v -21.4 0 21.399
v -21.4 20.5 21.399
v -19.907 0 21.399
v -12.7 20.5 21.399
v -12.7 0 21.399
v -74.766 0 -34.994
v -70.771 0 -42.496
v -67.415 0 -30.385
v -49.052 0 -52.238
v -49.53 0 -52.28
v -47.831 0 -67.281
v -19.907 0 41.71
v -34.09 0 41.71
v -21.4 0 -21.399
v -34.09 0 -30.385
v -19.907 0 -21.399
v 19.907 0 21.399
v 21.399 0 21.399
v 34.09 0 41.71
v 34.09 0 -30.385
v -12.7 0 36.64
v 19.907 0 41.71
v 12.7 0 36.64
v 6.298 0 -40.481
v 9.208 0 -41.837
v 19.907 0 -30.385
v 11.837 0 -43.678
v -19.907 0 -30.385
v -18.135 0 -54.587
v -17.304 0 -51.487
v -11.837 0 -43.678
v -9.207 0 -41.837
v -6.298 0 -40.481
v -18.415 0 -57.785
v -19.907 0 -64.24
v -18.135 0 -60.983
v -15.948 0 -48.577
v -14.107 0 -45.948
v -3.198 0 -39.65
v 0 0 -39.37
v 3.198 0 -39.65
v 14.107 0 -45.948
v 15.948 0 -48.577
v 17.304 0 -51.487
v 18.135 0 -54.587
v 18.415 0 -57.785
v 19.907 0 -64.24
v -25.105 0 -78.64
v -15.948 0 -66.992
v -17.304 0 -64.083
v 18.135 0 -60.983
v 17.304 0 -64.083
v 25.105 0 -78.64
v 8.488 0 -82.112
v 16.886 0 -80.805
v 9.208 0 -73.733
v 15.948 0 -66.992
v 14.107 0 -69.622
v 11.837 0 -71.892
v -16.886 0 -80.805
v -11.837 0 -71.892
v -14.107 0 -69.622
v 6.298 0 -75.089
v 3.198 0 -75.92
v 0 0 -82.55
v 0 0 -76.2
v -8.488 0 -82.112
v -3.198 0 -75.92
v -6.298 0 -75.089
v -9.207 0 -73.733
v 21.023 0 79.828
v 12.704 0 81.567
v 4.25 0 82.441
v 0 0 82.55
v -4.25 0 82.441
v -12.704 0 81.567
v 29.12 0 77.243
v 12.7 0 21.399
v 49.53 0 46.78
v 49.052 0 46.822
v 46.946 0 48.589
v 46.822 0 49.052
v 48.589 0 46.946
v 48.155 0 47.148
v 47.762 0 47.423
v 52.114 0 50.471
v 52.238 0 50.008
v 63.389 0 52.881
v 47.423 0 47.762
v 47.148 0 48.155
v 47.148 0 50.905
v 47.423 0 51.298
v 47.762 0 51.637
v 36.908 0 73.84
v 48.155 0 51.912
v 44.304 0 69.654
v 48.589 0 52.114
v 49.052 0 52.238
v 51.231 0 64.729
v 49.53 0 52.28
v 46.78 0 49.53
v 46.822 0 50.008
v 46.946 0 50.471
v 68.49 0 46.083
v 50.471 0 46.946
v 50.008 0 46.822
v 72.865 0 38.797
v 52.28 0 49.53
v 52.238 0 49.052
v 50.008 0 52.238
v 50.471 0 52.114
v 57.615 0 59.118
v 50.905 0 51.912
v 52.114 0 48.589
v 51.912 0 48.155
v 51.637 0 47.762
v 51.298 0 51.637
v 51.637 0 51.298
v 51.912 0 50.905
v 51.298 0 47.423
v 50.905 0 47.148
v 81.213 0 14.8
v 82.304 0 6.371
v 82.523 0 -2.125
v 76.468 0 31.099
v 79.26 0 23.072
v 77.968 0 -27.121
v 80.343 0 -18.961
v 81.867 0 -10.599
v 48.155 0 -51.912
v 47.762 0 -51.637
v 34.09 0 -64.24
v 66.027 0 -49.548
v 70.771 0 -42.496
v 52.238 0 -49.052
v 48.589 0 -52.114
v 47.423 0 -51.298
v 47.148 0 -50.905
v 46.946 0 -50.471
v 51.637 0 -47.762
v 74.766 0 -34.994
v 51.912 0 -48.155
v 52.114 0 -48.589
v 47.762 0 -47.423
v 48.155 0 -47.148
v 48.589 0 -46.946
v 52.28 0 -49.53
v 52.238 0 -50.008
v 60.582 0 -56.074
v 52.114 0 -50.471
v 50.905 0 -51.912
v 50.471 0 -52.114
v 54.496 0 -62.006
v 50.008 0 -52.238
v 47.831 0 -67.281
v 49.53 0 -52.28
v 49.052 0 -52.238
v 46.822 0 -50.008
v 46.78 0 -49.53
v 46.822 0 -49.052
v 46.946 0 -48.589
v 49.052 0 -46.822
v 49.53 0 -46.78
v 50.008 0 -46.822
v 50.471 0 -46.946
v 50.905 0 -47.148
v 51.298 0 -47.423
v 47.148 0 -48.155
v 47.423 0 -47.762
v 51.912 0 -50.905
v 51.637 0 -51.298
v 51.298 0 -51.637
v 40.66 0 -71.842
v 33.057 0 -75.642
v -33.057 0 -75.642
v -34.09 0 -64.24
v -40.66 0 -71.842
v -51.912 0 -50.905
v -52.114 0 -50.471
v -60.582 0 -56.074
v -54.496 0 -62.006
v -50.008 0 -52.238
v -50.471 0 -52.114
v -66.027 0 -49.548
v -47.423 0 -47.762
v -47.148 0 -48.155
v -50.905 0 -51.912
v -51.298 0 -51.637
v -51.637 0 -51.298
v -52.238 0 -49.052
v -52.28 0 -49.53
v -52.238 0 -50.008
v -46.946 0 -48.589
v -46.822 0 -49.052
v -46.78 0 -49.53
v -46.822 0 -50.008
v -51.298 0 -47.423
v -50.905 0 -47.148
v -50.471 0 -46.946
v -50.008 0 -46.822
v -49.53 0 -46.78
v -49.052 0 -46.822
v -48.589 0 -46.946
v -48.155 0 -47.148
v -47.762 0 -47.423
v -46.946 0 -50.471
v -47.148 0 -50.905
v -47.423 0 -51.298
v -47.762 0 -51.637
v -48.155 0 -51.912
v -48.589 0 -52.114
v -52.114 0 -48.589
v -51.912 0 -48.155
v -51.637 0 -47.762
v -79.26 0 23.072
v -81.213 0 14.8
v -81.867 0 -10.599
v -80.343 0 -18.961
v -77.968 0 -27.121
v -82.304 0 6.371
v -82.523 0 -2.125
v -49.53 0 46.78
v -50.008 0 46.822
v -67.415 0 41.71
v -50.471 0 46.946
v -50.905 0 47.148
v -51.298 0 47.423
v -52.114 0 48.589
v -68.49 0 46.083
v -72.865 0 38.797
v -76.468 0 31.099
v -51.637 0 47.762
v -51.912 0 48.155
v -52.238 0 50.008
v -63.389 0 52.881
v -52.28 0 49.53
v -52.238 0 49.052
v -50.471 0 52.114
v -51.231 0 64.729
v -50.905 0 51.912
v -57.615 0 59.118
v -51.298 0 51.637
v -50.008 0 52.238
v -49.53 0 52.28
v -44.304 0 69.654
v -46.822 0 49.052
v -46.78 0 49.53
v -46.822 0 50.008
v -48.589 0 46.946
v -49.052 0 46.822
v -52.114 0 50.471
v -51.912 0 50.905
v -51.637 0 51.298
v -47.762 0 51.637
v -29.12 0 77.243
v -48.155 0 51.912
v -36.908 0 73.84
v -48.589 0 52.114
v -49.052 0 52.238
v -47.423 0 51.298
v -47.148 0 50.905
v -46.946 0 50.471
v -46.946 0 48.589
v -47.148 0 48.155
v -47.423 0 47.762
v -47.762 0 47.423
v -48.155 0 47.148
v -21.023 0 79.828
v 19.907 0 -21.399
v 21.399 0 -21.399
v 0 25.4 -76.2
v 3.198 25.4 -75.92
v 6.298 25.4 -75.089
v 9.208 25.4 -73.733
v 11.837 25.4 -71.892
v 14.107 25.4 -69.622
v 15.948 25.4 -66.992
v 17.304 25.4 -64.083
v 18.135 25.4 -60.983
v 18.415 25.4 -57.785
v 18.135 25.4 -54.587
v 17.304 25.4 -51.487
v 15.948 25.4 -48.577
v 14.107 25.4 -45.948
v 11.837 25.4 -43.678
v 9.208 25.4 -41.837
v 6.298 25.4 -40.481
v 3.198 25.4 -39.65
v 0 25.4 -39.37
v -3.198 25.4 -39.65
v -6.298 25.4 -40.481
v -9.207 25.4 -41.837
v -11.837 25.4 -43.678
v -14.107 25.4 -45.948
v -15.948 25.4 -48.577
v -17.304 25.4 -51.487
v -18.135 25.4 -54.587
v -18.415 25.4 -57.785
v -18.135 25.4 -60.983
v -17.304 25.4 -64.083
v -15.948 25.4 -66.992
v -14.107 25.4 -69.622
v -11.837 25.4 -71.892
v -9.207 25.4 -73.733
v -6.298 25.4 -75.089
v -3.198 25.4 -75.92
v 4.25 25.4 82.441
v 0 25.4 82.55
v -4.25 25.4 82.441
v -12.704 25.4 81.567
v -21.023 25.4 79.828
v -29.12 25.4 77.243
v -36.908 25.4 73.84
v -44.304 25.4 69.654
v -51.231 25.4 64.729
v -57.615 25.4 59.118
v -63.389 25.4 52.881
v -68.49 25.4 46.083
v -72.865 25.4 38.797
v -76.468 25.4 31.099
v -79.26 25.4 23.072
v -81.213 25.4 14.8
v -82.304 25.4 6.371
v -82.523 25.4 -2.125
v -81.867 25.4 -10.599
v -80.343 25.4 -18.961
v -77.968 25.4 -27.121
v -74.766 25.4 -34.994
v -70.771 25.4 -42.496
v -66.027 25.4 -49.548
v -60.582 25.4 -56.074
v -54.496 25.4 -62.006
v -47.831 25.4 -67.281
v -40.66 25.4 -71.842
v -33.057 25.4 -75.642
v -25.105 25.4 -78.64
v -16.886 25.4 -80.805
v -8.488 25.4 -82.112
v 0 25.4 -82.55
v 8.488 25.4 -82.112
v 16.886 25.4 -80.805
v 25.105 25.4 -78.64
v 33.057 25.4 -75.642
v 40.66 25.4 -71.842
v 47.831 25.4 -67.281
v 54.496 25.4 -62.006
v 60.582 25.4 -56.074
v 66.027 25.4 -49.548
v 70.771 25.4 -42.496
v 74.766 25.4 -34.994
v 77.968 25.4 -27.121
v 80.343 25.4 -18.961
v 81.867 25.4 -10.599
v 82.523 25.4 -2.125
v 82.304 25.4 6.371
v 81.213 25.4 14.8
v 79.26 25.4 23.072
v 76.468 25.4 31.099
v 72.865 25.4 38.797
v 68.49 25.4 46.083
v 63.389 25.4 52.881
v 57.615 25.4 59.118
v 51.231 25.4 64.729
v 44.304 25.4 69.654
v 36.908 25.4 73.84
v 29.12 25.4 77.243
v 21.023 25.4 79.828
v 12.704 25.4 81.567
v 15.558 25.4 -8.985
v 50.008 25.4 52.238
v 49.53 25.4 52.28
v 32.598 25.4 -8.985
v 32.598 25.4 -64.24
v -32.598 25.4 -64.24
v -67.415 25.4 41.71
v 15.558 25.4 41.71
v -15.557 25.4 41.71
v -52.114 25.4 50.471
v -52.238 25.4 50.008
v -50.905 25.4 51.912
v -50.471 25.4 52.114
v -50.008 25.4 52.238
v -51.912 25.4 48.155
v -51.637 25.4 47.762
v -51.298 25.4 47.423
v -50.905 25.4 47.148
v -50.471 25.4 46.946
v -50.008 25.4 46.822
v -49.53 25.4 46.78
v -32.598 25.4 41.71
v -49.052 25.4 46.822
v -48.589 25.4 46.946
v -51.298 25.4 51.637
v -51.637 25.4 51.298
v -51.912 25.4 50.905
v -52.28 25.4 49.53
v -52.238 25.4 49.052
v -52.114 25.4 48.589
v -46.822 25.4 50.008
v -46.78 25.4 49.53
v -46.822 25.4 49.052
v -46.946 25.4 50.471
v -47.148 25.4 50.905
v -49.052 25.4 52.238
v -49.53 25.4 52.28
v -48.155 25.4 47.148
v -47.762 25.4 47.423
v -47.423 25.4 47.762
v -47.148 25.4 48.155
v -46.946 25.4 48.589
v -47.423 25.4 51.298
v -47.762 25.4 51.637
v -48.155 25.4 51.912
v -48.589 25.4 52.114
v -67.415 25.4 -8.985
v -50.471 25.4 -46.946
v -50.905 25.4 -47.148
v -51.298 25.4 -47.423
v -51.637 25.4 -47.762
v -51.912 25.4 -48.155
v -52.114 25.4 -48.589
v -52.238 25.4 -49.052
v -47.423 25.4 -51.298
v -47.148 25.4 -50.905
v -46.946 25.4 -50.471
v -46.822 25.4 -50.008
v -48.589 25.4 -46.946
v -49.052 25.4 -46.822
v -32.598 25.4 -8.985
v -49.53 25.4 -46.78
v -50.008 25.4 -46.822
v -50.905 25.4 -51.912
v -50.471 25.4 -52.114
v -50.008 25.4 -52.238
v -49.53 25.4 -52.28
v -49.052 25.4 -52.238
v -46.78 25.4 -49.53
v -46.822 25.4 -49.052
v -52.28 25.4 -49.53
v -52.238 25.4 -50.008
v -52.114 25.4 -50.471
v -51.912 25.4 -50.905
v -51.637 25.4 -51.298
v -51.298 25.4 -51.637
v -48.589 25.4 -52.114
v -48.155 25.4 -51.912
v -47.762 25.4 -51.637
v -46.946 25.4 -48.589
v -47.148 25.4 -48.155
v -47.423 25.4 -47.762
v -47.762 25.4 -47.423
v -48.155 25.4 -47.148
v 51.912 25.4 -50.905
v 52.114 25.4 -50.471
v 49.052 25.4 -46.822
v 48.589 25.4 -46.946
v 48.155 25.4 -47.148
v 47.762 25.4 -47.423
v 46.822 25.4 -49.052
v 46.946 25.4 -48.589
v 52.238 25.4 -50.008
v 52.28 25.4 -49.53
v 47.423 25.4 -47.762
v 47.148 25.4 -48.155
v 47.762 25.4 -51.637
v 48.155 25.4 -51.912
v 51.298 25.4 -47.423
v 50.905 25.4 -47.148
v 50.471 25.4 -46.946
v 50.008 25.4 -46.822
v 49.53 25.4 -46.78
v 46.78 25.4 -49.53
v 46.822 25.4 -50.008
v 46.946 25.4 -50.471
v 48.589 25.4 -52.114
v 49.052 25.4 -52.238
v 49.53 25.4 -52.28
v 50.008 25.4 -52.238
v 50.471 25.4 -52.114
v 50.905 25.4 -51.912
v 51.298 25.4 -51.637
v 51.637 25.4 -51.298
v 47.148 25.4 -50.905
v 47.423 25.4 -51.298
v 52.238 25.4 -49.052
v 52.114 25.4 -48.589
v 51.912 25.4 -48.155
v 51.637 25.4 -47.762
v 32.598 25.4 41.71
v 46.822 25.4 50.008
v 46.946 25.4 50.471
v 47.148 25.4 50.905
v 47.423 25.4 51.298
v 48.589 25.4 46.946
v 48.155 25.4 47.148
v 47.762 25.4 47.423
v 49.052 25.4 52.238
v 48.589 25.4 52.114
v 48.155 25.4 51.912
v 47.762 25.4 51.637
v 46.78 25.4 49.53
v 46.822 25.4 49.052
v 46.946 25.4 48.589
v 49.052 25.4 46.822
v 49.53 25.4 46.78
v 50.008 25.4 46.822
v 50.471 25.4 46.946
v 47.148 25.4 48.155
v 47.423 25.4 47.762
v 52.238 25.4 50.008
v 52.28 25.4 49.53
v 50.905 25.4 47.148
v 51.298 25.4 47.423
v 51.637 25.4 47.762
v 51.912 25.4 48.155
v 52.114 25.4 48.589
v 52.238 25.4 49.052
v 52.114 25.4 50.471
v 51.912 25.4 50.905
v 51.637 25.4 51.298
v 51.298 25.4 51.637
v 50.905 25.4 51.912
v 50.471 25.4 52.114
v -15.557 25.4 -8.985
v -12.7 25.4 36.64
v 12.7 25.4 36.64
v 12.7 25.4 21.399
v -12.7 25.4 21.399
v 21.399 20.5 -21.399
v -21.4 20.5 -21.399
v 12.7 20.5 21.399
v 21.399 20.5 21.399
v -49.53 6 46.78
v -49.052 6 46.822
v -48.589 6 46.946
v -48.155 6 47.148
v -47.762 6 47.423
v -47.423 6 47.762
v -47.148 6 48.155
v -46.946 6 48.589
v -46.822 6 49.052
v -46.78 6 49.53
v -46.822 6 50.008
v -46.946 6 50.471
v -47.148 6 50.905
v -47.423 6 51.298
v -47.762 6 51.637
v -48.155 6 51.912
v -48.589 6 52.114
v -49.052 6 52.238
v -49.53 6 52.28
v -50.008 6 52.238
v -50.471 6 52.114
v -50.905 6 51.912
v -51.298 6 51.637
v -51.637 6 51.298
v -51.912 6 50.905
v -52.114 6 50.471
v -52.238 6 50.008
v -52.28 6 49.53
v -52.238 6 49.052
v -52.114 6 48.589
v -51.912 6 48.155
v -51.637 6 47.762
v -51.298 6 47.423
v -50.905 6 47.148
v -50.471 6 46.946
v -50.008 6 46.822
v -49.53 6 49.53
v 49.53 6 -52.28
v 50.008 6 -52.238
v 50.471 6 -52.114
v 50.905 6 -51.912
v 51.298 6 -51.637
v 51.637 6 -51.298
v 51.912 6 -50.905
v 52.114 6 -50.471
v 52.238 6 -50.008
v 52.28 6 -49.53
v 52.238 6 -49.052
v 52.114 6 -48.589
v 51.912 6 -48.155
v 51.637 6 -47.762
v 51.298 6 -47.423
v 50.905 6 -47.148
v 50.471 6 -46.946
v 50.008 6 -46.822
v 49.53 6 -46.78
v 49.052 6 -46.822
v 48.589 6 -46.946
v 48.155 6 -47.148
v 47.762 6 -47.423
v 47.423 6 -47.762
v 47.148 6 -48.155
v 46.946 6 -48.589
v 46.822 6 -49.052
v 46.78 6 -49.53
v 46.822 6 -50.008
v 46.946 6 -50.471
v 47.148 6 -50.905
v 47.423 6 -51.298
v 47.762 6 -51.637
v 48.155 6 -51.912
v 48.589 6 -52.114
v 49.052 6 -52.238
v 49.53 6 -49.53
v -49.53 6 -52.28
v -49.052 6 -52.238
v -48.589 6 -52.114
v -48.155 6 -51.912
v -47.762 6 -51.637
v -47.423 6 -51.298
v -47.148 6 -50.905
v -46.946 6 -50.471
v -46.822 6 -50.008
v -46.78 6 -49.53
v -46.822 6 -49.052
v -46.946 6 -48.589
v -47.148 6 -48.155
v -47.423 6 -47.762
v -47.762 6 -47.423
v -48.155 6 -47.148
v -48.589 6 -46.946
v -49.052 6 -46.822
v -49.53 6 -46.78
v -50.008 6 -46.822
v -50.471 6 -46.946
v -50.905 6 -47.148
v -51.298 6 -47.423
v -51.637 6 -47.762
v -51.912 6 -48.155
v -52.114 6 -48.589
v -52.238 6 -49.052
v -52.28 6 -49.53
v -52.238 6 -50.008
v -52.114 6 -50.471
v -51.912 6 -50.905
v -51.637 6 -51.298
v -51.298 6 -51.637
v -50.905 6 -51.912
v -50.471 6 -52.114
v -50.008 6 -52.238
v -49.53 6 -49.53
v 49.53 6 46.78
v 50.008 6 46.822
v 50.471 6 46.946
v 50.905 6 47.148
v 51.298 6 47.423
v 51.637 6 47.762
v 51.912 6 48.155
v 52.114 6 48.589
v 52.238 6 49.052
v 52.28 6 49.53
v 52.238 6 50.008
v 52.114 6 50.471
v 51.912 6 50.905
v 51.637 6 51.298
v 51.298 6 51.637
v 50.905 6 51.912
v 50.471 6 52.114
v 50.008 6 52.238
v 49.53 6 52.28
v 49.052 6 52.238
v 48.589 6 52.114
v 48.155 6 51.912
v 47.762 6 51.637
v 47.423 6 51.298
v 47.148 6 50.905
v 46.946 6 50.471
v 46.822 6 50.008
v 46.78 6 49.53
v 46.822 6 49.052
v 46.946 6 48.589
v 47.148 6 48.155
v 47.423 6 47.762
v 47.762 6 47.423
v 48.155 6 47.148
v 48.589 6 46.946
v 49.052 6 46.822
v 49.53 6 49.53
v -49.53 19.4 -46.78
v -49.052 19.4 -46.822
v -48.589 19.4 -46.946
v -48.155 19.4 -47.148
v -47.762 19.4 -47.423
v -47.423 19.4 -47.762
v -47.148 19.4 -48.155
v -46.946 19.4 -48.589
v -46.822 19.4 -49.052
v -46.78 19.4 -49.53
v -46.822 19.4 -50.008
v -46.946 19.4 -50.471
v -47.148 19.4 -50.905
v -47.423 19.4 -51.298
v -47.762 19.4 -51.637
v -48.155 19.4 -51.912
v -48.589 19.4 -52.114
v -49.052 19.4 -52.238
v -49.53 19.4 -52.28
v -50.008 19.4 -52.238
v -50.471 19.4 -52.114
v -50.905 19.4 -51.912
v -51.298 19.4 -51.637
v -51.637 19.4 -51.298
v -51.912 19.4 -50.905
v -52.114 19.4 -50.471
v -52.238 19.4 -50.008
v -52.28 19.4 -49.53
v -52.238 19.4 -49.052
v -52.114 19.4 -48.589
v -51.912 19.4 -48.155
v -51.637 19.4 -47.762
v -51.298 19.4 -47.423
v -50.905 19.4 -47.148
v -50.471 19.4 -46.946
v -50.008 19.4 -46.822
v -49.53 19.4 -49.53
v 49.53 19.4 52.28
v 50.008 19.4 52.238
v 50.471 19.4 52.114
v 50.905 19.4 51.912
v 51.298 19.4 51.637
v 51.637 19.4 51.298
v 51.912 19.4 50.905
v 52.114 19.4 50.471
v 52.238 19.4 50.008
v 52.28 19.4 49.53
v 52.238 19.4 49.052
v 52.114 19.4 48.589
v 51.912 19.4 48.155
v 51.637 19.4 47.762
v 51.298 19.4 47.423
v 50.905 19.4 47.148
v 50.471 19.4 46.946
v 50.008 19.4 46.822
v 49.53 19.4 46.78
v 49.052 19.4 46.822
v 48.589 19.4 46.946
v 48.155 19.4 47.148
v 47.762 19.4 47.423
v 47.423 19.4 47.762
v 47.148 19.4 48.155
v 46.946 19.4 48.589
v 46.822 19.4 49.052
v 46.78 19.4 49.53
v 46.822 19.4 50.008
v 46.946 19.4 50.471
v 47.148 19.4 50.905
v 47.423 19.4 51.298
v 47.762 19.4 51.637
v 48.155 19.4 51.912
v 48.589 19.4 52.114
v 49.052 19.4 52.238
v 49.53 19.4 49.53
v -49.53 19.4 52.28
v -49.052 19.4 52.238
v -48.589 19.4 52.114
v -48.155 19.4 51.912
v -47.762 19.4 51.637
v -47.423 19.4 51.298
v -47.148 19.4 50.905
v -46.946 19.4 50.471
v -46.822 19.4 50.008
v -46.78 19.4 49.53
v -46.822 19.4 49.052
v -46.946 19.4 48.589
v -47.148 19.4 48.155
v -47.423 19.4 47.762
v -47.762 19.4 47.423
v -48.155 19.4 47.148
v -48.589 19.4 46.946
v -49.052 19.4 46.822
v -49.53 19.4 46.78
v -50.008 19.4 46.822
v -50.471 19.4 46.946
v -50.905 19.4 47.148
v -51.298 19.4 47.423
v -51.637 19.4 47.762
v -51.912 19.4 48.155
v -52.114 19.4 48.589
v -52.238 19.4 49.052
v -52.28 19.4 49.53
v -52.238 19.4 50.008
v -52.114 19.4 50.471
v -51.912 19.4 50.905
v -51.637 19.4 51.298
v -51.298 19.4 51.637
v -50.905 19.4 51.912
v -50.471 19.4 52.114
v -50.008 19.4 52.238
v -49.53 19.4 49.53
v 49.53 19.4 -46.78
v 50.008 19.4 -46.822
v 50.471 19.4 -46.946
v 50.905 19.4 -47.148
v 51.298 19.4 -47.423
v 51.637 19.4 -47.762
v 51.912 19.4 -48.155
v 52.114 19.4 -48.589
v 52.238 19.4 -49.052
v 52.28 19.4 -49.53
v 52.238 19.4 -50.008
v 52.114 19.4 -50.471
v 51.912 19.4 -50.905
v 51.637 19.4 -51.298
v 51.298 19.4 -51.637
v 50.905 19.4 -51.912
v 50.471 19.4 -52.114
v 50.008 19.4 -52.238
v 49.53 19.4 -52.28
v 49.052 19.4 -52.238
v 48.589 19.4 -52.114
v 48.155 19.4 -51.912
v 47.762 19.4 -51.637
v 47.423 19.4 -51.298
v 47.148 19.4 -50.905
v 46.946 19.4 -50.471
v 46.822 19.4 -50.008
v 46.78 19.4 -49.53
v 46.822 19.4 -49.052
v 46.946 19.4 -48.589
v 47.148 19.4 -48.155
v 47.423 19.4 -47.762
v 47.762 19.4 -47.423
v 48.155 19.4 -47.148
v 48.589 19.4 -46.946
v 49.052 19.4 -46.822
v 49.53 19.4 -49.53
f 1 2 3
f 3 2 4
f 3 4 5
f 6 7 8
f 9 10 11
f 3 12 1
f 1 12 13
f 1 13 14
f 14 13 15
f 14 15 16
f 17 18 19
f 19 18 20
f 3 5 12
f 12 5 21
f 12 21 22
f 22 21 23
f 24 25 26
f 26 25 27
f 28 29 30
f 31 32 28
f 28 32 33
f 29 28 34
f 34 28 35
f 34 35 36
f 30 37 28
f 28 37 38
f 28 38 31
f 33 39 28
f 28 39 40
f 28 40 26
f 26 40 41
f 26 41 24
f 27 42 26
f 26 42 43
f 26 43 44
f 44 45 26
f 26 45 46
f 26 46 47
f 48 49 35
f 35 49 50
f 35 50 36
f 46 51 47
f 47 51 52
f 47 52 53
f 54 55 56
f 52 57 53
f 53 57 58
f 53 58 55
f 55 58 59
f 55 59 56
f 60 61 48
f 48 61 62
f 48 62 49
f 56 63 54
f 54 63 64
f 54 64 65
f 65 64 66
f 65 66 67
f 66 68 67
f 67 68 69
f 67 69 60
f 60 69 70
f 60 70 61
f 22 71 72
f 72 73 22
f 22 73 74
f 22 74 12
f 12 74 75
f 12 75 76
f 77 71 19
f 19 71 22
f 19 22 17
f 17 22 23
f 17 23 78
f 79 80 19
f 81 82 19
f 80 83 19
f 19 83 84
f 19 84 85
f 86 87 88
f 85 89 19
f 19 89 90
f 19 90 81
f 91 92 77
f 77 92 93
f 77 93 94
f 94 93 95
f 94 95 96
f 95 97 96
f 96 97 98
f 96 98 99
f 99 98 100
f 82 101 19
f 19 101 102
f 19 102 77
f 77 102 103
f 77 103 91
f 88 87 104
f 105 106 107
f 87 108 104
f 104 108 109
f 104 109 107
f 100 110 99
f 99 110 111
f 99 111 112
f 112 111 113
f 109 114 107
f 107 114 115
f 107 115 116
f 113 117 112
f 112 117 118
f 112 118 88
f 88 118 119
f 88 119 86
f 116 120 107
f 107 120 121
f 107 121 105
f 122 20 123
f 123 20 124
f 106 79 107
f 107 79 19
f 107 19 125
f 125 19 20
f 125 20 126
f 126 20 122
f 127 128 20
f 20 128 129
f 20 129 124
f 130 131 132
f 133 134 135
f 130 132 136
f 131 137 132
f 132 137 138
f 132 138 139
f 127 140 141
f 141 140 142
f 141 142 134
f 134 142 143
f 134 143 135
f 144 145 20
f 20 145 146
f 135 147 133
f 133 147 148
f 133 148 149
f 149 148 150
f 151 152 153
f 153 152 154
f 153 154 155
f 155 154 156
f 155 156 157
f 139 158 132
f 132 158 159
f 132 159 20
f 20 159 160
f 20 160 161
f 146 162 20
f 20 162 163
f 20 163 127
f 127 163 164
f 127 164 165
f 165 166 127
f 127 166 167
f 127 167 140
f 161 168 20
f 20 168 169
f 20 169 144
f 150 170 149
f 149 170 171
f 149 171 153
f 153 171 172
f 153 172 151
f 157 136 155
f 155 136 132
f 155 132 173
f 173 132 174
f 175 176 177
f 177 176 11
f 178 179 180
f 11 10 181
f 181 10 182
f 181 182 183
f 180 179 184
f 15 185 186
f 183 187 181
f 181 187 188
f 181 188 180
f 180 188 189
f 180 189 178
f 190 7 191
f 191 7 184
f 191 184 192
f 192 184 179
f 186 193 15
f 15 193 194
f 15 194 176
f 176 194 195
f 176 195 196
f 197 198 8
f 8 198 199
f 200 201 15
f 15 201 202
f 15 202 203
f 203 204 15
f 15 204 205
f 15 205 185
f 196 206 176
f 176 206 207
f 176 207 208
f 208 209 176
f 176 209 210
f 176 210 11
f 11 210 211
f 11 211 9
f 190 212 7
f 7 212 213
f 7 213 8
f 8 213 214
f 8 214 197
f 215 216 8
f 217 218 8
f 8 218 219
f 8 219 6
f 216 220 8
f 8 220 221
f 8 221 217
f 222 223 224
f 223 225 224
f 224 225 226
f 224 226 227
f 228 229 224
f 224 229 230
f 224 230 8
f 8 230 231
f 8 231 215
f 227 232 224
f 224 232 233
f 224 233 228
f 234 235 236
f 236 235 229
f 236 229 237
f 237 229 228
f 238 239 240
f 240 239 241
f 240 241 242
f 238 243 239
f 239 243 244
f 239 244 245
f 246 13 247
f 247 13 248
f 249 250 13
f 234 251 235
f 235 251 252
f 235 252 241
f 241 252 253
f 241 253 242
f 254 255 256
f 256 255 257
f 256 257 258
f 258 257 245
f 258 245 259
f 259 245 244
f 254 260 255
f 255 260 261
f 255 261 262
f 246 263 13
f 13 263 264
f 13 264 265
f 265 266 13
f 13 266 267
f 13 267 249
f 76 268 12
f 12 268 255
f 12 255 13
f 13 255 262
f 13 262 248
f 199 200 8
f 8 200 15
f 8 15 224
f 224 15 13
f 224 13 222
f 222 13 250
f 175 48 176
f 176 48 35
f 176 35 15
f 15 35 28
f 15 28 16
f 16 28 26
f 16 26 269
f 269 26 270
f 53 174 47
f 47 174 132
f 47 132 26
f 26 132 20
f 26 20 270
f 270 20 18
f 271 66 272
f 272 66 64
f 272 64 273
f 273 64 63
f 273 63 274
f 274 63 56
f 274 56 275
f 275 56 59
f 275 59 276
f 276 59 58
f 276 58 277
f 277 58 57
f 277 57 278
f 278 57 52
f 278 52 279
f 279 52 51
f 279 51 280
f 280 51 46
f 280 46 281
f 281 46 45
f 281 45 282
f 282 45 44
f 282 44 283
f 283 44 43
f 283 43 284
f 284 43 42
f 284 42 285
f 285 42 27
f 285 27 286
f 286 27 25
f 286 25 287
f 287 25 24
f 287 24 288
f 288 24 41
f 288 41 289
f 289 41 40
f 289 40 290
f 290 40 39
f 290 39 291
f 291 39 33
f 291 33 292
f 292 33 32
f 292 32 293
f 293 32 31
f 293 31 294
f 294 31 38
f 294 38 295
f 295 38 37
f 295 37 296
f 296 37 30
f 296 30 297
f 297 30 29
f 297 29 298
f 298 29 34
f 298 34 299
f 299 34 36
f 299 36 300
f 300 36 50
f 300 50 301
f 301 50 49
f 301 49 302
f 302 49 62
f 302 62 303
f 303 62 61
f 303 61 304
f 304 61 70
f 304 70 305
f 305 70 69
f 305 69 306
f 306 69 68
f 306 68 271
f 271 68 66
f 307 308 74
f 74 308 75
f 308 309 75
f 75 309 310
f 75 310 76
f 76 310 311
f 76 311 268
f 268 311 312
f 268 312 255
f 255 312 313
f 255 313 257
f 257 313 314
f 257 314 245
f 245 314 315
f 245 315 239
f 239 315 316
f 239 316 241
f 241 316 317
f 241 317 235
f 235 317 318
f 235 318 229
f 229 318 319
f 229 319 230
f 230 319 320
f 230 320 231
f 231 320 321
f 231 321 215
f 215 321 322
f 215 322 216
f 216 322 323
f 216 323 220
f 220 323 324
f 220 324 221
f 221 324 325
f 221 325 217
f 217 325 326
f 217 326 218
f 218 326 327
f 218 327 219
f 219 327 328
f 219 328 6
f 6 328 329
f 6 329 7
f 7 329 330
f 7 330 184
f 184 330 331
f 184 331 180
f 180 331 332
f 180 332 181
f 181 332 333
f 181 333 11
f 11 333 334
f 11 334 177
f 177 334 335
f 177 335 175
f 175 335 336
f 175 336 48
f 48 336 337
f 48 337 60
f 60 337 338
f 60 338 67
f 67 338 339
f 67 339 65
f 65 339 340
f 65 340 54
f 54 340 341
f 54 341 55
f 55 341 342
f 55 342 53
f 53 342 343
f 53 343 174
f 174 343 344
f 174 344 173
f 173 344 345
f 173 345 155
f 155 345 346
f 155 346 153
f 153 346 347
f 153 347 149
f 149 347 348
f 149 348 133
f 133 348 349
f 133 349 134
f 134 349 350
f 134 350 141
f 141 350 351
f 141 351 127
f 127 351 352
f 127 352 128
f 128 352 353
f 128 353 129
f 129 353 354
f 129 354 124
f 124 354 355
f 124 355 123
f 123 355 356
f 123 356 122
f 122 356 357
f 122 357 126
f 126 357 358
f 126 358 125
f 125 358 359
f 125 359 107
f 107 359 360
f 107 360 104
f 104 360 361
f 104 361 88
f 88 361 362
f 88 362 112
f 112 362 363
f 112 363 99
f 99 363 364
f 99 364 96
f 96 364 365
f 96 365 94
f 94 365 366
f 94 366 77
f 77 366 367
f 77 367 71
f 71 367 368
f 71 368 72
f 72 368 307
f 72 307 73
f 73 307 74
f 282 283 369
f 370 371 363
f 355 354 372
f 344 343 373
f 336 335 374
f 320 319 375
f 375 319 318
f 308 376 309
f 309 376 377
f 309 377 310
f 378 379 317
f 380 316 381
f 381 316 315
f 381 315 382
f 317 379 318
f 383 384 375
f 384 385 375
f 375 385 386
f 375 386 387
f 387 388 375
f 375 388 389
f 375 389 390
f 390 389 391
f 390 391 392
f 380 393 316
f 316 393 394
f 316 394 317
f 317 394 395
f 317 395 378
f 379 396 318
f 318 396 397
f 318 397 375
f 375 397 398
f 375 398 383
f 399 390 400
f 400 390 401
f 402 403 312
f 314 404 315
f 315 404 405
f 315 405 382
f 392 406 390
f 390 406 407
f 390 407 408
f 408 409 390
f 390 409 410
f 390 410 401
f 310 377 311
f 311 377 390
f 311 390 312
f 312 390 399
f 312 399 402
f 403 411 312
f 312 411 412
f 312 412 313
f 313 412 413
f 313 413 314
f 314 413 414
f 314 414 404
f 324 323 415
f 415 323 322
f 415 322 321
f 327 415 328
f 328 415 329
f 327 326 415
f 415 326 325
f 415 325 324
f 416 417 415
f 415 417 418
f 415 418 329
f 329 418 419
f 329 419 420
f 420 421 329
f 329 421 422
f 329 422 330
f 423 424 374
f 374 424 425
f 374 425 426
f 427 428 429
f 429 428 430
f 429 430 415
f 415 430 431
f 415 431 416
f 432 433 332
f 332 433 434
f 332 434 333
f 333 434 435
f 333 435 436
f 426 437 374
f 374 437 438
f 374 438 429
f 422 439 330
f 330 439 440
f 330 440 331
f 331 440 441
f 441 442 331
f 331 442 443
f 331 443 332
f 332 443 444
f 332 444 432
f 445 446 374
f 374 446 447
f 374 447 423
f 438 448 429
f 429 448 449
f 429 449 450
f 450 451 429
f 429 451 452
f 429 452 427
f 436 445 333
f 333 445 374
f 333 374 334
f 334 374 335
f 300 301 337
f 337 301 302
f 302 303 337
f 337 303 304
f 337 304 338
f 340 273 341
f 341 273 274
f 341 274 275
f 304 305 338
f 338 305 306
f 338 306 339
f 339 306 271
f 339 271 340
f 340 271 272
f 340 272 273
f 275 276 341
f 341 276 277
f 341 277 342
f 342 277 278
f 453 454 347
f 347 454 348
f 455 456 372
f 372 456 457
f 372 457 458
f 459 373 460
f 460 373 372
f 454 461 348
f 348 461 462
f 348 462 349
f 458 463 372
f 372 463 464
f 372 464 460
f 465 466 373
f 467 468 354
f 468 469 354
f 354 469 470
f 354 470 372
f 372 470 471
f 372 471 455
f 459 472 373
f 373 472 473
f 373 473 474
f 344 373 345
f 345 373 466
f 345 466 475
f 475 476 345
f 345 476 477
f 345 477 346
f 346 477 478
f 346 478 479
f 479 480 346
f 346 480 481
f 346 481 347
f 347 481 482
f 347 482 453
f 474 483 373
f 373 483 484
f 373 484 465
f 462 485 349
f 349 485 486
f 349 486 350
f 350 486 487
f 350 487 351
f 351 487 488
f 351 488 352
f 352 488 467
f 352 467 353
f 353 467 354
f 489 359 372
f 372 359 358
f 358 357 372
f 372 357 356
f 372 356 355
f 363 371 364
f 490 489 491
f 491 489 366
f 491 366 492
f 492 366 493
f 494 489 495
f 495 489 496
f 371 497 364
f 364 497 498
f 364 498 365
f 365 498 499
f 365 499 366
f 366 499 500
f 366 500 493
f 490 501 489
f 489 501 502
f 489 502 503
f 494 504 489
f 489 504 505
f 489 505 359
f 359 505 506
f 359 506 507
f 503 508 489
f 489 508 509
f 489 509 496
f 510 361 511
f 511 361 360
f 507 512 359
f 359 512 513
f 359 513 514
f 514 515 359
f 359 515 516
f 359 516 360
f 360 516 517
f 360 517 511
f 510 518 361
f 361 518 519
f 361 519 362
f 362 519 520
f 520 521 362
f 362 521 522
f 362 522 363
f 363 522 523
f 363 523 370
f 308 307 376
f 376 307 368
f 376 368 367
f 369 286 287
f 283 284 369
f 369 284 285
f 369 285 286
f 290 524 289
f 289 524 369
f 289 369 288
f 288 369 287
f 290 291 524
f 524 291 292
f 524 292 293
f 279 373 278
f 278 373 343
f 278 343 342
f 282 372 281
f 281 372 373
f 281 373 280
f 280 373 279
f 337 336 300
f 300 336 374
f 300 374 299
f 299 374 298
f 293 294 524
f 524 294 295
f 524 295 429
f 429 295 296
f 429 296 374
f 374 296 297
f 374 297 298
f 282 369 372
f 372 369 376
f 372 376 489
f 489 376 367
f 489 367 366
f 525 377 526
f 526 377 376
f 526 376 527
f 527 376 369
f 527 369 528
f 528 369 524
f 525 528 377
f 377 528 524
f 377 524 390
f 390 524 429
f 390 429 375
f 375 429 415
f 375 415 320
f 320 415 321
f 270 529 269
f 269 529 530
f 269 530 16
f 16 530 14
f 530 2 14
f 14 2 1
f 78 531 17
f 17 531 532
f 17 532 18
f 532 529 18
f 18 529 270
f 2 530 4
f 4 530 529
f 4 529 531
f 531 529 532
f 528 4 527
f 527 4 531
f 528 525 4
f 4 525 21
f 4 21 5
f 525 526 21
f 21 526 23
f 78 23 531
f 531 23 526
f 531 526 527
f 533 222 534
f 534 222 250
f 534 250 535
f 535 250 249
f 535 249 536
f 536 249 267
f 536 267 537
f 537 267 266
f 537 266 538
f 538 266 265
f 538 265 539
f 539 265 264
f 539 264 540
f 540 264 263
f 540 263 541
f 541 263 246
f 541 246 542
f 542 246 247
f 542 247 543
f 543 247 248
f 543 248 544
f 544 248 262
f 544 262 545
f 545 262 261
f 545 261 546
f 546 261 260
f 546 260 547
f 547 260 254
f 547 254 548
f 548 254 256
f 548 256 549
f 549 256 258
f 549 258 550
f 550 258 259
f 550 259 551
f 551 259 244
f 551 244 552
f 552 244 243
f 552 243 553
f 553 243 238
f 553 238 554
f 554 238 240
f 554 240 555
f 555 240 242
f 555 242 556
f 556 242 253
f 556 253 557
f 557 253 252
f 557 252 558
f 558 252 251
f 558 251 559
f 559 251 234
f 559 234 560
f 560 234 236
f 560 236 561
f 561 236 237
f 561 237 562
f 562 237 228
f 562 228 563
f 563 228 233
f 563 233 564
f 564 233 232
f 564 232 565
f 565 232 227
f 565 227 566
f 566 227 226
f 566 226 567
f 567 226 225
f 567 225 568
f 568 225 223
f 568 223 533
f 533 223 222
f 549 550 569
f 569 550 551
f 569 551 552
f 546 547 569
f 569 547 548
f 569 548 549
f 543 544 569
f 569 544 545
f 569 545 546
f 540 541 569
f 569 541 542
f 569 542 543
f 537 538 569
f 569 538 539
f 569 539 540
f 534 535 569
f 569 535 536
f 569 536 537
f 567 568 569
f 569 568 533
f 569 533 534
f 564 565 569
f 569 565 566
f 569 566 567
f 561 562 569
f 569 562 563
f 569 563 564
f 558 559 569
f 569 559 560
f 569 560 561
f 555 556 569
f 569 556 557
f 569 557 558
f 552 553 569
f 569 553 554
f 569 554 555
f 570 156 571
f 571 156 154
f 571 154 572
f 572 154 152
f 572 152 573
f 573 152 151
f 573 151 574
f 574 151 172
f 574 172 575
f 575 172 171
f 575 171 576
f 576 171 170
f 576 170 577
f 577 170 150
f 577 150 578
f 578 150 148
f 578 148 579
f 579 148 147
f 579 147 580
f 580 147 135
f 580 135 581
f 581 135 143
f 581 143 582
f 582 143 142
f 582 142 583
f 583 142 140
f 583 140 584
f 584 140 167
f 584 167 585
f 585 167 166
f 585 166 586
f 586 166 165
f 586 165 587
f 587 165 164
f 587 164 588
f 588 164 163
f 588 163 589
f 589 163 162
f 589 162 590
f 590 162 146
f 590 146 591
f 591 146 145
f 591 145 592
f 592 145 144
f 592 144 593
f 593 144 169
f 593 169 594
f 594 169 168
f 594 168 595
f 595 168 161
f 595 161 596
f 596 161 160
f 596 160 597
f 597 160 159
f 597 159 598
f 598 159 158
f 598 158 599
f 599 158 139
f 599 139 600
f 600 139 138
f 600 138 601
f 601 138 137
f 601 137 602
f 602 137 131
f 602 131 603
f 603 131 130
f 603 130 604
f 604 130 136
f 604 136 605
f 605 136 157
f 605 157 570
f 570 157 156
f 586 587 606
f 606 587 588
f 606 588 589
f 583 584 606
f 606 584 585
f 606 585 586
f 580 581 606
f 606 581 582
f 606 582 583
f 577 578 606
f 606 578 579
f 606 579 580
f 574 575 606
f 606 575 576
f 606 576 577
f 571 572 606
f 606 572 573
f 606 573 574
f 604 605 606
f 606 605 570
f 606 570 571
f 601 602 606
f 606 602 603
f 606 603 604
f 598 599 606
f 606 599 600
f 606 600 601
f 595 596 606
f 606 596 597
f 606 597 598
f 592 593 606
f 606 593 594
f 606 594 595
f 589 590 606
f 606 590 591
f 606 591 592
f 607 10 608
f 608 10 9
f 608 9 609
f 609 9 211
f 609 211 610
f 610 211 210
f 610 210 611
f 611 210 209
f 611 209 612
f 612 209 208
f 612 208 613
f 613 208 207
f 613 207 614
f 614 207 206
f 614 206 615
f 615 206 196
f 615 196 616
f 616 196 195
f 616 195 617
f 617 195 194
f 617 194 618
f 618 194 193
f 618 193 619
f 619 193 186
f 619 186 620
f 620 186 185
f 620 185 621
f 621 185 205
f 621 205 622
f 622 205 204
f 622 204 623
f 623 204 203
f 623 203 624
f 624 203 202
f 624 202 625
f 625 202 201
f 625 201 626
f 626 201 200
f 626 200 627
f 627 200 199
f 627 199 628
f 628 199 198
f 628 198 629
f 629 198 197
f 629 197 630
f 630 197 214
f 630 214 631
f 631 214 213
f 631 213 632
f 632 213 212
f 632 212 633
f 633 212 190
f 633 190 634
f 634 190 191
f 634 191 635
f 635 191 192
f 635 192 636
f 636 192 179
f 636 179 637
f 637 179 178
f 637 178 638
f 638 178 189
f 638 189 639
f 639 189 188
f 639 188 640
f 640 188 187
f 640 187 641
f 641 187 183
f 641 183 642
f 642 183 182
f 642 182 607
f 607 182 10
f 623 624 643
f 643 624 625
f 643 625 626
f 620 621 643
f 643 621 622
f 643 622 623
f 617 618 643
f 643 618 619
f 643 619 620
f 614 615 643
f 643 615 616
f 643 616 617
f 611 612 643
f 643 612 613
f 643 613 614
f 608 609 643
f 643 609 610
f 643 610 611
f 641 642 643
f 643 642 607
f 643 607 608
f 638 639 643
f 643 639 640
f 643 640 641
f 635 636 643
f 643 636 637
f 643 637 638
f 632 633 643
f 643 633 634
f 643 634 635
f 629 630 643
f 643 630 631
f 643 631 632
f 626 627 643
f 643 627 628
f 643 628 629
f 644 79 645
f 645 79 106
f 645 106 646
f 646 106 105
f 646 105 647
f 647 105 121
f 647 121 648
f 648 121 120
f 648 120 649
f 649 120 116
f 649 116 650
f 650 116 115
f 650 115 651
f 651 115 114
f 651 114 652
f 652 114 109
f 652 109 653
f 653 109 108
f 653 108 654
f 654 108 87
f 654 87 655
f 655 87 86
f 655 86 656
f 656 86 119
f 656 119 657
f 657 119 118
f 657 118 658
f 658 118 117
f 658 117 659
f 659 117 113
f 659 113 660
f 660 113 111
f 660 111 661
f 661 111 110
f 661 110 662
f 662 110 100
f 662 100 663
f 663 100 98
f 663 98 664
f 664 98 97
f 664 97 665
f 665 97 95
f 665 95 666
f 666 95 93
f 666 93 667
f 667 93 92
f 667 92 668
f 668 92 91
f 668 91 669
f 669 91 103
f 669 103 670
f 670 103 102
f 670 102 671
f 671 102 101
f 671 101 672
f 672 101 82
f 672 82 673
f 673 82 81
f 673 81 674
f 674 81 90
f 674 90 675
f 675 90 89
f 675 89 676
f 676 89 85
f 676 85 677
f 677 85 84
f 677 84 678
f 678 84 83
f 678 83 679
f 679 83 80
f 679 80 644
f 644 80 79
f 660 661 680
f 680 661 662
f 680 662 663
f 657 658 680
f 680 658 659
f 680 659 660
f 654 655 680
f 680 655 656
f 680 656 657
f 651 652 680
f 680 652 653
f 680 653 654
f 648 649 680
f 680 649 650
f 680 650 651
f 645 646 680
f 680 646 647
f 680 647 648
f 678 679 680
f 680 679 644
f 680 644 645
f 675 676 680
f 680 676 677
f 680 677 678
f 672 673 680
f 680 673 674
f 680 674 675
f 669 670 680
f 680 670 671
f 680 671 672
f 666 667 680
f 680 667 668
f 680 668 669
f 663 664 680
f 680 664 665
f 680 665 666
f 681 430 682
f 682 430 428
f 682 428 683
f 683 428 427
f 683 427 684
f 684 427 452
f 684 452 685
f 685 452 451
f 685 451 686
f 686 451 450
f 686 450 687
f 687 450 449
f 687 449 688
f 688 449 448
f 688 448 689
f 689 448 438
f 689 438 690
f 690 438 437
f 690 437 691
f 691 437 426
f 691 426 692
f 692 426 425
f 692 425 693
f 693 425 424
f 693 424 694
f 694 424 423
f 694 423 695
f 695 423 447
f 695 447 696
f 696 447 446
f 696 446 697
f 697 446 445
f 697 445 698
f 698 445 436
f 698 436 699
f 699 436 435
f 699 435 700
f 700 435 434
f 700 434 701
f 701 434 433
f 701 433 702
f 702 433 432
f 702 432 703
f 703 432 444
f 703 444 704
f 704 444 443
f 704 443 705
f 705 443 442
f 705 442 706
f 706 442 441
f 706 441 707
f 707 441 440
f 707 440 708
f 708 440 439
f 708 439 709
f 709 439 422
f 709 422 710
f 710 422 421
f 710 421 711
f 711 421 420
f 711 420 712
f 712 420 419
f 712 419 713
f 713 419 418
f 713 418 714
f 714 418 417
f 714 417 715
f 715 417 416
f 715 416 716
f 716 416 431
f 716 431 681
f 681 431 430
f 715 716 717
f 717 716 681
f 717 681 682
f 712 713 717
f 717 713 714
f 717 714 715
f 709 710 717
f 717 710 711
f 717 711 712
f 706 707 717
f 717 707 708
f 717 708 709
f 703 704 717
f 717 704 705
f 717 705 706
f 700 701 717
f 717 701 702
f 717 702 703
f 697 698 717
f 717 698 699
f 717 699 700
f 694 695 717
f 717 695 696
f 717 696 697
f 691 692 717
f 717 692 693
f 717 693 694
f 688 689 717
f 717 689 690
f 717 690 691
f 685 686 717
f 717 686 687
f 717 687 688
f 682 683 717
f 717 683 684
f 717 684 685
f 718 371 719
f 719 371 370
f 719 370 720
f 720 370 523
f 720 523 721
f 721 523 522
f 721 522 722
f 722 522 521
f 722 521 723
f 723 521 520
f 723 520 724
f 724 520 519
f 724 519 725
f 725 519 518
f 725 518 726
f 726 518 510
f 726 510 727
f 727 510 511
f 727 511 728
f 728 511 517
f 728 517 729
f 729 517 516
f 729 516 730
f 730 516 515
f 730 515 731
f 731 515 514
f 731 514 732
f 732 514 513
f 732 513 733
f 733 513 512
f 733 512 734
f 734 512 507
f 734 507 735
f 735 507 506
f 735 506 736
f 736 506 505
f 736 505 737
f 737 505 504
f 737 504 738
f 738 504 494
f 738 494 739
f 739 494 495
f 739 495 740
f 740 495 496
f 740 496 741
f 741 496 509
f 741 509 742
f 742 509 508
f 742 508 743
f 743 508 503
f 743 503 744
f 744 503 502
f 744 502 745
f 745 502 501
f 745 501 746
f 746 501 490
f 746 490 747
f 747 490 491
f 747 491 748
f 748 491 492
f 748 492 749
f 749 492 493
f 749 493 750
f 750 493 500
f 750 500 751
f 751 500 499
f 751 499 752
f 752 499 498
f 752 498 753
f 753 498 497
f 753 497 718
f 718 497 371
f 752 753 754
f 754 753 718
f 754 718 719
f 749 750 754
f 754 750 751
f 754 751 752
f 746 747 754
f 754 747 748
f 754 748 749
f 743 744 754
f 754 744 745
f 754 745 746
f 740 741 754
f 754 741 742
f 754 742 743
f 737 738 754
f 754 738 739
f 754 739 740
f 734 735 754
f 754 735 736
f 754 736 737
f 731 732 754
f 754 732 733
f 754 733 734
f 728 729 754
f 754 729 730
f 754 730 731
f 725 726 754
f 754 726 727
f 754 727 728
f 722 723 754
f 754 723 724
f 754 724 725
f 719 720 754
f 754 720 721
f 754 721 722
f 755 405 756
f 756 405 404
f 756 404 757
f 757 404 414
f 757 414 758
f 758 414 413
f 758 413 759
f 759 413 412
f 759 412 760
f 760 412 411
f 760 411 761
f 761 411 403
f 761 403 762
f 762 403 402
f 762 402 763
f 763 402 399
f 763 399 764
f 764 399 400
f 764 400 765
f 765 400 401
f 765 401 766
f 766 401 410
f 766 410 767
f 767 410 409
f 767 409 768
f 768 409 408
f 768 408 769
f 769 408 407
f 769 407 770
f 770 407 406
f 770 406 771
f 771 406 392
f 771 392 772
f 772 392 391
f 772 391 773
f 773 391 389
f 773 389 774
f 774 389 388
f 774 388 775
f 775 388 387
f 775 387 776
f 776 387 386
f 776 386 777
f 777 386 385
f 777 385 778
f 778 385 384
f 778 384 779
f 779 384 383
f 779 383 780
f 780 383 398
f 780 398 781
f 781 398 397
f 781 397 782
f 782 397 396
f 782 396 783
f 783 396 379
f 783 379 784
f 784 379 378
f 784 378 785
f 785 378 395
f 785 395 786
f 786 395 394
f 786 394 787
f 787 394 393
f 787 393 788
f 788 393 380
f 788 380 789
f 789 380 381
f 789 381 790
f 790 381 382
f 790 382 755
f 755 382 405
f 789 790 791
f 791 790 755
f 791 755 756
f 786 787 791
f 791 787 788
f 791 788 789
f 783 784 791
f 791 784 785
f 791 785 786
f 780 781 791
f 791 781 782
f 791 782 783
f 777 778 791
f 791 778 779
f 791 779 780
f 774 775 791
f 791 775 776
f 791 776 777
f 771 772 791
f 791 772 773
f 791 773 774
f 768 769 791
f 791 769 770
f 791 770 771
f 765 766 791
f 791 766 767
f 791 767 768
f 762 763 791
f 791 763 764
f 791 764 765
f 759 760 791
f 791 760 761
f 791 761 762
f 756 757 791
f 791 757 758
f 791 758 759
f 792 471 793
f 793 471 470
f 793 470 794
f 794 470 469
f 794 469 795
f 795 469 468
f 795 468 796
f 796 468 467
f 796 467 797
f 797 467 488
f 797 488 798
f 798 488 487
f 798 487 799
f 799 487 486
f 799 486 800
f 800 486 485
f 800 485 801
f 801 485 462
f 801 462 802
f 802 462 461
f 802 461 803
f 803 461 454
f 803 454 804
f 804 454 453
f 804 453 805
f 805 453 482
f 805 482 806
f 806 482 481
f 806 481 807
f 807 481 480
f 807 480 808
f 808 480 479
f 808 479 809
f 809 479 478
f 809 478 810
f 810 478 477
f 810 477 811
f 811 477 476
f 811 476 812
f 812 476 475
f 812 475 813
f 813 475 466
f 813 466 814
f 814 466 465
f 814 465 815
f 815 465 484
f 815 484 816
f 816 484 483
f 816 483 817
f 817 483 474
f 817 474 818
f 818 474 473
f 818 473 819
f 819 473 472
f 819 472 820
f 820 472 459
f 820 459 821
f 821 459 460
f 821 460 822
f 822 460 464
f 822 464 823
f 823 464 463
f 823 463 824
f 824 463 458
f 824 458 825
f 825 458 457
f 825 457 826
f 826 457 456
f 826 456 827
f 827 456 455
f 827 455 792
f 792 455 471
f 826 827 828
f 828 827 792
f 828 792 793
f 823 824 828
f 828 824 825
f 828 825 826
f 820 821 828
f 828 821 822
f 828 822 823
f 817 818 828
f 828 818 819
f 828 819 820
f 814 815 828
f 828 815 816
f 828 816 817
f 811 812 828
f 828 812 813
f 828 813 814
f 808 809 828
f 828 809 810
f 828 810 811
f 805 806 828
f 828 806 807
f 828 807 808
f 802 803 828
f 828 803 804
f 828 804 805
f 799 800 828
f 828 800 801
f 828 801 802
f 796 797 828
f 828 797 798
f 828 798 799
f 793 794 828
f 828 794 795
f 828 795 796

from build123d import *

# Parameters (mm, degrees)
SKETCH1_R           = 82.55
SKETCH1_R_2         = 18.415
BOSS_EXTRUDE3_DEPTH = 25.4
SKETCH1_7_W         = 42.799
SKETCH1_7_H         = 42.799
CUT_EXTRUDE2_DEPTH  = 20.5
SKETCH3_W           = 25.4
SKETCH3_H           = 15.24
CUT_EXTRUDE3_DEPTH  = 120.474537036
SKETCH1_8_R         = 2.75
CUT_EXTRUDE4_DEPTH  = 6
CUT_EXTRUDE5_START  = 19.4
SKETCH1_10_R        = 2.75
CUT_EXTRUDE5_DEPTH  = 6


with BuildPart() as part:
    # Sketch1 → Boss-Extrude3 (new body)
    with BuildSketch(Plane(origin=(0, 0, 0), x_dir=(1, 0, 0), z_dir=(0, 1, 0))):
        Circle(SKETCH1_R)
        with Locations((0, 57.785)):
            Circle(SKETCH1_R_2, mode=Mode.SUBTRACT)
    extrude(amount=BOSS_EXTRUDE3_DEPTH)

    # Sketch1<7> → Cut-Extrude2 (cut)
    with BuildSketch(Plane(origin=(0, 0, 0), x_dir=(1, 0, 0), z_dir=(0, 1, 0))):
        Rectangle(SKETCH1_7_W, SKETCH1_7_H)
    extrude(amount=CUT_EXTRUDE2_DEPTH, mode=Mode.SUBTRACT)

    # Sketch3 → Cut-Extrude3 (cut, through all)
    with BuildSketch(Plane.XZ):
        with Locations((0, 29.0195)):
            Rectangle(SKETCH3_W, SKETCH3_H)
    extrude(amount=-CUT_EXTRUDE3_DEPTH, mode=Mode.SUBTRACT)

    # Sketch1<8> → Cut-Extrude4 (cut)
    with BuildSketch(Plane(origin=(0, 0, 0), x_dir=(1, 0, 0), z_dir=(0, 1, 0))):
        with Locations((-49.53, 49.53)):
            Circle(SKETCH1_8_R)
        with Locations((49.53, 49.53)):
            Circle(SKETCH1_8_R)
        with Locations((49.53, -49.53)):
            Circle(SKETCH1_8_R)
        with Locations((-49.53, -49.53)):
            Circle(SKETCH1_8_R)
    extrude(amount=CUT_EXTRUDE4_DEPTH, mode=Mode.SUBTRACT)

    # Sketch1<10> → Cut-Extrude5 (cut)
    with BuildSketch(Plane(origin=(0, 0, 0), x_dir=(1, 0, 0), z_dir=(0, 1, 0)).offset(CUT_EXTRUDE5_START)):
        with Locations((-49.53, 49.53)):
            Circle(SKETCH1_10_R)
        with Locations((49.53, 49.53)):
            Circle(SKETCH1_10_R)
        with Locations((49.53, -49.53)):
            Circle(SKETCH1_10_R)
        with Locations((-49.53, -49.53)):
            Circle(SKETCH1_10_R)
    extrude(amount=CUT_EXTRUDE5_DEPTH, mode=Mode.SUBTRACT)


solid = part.part
